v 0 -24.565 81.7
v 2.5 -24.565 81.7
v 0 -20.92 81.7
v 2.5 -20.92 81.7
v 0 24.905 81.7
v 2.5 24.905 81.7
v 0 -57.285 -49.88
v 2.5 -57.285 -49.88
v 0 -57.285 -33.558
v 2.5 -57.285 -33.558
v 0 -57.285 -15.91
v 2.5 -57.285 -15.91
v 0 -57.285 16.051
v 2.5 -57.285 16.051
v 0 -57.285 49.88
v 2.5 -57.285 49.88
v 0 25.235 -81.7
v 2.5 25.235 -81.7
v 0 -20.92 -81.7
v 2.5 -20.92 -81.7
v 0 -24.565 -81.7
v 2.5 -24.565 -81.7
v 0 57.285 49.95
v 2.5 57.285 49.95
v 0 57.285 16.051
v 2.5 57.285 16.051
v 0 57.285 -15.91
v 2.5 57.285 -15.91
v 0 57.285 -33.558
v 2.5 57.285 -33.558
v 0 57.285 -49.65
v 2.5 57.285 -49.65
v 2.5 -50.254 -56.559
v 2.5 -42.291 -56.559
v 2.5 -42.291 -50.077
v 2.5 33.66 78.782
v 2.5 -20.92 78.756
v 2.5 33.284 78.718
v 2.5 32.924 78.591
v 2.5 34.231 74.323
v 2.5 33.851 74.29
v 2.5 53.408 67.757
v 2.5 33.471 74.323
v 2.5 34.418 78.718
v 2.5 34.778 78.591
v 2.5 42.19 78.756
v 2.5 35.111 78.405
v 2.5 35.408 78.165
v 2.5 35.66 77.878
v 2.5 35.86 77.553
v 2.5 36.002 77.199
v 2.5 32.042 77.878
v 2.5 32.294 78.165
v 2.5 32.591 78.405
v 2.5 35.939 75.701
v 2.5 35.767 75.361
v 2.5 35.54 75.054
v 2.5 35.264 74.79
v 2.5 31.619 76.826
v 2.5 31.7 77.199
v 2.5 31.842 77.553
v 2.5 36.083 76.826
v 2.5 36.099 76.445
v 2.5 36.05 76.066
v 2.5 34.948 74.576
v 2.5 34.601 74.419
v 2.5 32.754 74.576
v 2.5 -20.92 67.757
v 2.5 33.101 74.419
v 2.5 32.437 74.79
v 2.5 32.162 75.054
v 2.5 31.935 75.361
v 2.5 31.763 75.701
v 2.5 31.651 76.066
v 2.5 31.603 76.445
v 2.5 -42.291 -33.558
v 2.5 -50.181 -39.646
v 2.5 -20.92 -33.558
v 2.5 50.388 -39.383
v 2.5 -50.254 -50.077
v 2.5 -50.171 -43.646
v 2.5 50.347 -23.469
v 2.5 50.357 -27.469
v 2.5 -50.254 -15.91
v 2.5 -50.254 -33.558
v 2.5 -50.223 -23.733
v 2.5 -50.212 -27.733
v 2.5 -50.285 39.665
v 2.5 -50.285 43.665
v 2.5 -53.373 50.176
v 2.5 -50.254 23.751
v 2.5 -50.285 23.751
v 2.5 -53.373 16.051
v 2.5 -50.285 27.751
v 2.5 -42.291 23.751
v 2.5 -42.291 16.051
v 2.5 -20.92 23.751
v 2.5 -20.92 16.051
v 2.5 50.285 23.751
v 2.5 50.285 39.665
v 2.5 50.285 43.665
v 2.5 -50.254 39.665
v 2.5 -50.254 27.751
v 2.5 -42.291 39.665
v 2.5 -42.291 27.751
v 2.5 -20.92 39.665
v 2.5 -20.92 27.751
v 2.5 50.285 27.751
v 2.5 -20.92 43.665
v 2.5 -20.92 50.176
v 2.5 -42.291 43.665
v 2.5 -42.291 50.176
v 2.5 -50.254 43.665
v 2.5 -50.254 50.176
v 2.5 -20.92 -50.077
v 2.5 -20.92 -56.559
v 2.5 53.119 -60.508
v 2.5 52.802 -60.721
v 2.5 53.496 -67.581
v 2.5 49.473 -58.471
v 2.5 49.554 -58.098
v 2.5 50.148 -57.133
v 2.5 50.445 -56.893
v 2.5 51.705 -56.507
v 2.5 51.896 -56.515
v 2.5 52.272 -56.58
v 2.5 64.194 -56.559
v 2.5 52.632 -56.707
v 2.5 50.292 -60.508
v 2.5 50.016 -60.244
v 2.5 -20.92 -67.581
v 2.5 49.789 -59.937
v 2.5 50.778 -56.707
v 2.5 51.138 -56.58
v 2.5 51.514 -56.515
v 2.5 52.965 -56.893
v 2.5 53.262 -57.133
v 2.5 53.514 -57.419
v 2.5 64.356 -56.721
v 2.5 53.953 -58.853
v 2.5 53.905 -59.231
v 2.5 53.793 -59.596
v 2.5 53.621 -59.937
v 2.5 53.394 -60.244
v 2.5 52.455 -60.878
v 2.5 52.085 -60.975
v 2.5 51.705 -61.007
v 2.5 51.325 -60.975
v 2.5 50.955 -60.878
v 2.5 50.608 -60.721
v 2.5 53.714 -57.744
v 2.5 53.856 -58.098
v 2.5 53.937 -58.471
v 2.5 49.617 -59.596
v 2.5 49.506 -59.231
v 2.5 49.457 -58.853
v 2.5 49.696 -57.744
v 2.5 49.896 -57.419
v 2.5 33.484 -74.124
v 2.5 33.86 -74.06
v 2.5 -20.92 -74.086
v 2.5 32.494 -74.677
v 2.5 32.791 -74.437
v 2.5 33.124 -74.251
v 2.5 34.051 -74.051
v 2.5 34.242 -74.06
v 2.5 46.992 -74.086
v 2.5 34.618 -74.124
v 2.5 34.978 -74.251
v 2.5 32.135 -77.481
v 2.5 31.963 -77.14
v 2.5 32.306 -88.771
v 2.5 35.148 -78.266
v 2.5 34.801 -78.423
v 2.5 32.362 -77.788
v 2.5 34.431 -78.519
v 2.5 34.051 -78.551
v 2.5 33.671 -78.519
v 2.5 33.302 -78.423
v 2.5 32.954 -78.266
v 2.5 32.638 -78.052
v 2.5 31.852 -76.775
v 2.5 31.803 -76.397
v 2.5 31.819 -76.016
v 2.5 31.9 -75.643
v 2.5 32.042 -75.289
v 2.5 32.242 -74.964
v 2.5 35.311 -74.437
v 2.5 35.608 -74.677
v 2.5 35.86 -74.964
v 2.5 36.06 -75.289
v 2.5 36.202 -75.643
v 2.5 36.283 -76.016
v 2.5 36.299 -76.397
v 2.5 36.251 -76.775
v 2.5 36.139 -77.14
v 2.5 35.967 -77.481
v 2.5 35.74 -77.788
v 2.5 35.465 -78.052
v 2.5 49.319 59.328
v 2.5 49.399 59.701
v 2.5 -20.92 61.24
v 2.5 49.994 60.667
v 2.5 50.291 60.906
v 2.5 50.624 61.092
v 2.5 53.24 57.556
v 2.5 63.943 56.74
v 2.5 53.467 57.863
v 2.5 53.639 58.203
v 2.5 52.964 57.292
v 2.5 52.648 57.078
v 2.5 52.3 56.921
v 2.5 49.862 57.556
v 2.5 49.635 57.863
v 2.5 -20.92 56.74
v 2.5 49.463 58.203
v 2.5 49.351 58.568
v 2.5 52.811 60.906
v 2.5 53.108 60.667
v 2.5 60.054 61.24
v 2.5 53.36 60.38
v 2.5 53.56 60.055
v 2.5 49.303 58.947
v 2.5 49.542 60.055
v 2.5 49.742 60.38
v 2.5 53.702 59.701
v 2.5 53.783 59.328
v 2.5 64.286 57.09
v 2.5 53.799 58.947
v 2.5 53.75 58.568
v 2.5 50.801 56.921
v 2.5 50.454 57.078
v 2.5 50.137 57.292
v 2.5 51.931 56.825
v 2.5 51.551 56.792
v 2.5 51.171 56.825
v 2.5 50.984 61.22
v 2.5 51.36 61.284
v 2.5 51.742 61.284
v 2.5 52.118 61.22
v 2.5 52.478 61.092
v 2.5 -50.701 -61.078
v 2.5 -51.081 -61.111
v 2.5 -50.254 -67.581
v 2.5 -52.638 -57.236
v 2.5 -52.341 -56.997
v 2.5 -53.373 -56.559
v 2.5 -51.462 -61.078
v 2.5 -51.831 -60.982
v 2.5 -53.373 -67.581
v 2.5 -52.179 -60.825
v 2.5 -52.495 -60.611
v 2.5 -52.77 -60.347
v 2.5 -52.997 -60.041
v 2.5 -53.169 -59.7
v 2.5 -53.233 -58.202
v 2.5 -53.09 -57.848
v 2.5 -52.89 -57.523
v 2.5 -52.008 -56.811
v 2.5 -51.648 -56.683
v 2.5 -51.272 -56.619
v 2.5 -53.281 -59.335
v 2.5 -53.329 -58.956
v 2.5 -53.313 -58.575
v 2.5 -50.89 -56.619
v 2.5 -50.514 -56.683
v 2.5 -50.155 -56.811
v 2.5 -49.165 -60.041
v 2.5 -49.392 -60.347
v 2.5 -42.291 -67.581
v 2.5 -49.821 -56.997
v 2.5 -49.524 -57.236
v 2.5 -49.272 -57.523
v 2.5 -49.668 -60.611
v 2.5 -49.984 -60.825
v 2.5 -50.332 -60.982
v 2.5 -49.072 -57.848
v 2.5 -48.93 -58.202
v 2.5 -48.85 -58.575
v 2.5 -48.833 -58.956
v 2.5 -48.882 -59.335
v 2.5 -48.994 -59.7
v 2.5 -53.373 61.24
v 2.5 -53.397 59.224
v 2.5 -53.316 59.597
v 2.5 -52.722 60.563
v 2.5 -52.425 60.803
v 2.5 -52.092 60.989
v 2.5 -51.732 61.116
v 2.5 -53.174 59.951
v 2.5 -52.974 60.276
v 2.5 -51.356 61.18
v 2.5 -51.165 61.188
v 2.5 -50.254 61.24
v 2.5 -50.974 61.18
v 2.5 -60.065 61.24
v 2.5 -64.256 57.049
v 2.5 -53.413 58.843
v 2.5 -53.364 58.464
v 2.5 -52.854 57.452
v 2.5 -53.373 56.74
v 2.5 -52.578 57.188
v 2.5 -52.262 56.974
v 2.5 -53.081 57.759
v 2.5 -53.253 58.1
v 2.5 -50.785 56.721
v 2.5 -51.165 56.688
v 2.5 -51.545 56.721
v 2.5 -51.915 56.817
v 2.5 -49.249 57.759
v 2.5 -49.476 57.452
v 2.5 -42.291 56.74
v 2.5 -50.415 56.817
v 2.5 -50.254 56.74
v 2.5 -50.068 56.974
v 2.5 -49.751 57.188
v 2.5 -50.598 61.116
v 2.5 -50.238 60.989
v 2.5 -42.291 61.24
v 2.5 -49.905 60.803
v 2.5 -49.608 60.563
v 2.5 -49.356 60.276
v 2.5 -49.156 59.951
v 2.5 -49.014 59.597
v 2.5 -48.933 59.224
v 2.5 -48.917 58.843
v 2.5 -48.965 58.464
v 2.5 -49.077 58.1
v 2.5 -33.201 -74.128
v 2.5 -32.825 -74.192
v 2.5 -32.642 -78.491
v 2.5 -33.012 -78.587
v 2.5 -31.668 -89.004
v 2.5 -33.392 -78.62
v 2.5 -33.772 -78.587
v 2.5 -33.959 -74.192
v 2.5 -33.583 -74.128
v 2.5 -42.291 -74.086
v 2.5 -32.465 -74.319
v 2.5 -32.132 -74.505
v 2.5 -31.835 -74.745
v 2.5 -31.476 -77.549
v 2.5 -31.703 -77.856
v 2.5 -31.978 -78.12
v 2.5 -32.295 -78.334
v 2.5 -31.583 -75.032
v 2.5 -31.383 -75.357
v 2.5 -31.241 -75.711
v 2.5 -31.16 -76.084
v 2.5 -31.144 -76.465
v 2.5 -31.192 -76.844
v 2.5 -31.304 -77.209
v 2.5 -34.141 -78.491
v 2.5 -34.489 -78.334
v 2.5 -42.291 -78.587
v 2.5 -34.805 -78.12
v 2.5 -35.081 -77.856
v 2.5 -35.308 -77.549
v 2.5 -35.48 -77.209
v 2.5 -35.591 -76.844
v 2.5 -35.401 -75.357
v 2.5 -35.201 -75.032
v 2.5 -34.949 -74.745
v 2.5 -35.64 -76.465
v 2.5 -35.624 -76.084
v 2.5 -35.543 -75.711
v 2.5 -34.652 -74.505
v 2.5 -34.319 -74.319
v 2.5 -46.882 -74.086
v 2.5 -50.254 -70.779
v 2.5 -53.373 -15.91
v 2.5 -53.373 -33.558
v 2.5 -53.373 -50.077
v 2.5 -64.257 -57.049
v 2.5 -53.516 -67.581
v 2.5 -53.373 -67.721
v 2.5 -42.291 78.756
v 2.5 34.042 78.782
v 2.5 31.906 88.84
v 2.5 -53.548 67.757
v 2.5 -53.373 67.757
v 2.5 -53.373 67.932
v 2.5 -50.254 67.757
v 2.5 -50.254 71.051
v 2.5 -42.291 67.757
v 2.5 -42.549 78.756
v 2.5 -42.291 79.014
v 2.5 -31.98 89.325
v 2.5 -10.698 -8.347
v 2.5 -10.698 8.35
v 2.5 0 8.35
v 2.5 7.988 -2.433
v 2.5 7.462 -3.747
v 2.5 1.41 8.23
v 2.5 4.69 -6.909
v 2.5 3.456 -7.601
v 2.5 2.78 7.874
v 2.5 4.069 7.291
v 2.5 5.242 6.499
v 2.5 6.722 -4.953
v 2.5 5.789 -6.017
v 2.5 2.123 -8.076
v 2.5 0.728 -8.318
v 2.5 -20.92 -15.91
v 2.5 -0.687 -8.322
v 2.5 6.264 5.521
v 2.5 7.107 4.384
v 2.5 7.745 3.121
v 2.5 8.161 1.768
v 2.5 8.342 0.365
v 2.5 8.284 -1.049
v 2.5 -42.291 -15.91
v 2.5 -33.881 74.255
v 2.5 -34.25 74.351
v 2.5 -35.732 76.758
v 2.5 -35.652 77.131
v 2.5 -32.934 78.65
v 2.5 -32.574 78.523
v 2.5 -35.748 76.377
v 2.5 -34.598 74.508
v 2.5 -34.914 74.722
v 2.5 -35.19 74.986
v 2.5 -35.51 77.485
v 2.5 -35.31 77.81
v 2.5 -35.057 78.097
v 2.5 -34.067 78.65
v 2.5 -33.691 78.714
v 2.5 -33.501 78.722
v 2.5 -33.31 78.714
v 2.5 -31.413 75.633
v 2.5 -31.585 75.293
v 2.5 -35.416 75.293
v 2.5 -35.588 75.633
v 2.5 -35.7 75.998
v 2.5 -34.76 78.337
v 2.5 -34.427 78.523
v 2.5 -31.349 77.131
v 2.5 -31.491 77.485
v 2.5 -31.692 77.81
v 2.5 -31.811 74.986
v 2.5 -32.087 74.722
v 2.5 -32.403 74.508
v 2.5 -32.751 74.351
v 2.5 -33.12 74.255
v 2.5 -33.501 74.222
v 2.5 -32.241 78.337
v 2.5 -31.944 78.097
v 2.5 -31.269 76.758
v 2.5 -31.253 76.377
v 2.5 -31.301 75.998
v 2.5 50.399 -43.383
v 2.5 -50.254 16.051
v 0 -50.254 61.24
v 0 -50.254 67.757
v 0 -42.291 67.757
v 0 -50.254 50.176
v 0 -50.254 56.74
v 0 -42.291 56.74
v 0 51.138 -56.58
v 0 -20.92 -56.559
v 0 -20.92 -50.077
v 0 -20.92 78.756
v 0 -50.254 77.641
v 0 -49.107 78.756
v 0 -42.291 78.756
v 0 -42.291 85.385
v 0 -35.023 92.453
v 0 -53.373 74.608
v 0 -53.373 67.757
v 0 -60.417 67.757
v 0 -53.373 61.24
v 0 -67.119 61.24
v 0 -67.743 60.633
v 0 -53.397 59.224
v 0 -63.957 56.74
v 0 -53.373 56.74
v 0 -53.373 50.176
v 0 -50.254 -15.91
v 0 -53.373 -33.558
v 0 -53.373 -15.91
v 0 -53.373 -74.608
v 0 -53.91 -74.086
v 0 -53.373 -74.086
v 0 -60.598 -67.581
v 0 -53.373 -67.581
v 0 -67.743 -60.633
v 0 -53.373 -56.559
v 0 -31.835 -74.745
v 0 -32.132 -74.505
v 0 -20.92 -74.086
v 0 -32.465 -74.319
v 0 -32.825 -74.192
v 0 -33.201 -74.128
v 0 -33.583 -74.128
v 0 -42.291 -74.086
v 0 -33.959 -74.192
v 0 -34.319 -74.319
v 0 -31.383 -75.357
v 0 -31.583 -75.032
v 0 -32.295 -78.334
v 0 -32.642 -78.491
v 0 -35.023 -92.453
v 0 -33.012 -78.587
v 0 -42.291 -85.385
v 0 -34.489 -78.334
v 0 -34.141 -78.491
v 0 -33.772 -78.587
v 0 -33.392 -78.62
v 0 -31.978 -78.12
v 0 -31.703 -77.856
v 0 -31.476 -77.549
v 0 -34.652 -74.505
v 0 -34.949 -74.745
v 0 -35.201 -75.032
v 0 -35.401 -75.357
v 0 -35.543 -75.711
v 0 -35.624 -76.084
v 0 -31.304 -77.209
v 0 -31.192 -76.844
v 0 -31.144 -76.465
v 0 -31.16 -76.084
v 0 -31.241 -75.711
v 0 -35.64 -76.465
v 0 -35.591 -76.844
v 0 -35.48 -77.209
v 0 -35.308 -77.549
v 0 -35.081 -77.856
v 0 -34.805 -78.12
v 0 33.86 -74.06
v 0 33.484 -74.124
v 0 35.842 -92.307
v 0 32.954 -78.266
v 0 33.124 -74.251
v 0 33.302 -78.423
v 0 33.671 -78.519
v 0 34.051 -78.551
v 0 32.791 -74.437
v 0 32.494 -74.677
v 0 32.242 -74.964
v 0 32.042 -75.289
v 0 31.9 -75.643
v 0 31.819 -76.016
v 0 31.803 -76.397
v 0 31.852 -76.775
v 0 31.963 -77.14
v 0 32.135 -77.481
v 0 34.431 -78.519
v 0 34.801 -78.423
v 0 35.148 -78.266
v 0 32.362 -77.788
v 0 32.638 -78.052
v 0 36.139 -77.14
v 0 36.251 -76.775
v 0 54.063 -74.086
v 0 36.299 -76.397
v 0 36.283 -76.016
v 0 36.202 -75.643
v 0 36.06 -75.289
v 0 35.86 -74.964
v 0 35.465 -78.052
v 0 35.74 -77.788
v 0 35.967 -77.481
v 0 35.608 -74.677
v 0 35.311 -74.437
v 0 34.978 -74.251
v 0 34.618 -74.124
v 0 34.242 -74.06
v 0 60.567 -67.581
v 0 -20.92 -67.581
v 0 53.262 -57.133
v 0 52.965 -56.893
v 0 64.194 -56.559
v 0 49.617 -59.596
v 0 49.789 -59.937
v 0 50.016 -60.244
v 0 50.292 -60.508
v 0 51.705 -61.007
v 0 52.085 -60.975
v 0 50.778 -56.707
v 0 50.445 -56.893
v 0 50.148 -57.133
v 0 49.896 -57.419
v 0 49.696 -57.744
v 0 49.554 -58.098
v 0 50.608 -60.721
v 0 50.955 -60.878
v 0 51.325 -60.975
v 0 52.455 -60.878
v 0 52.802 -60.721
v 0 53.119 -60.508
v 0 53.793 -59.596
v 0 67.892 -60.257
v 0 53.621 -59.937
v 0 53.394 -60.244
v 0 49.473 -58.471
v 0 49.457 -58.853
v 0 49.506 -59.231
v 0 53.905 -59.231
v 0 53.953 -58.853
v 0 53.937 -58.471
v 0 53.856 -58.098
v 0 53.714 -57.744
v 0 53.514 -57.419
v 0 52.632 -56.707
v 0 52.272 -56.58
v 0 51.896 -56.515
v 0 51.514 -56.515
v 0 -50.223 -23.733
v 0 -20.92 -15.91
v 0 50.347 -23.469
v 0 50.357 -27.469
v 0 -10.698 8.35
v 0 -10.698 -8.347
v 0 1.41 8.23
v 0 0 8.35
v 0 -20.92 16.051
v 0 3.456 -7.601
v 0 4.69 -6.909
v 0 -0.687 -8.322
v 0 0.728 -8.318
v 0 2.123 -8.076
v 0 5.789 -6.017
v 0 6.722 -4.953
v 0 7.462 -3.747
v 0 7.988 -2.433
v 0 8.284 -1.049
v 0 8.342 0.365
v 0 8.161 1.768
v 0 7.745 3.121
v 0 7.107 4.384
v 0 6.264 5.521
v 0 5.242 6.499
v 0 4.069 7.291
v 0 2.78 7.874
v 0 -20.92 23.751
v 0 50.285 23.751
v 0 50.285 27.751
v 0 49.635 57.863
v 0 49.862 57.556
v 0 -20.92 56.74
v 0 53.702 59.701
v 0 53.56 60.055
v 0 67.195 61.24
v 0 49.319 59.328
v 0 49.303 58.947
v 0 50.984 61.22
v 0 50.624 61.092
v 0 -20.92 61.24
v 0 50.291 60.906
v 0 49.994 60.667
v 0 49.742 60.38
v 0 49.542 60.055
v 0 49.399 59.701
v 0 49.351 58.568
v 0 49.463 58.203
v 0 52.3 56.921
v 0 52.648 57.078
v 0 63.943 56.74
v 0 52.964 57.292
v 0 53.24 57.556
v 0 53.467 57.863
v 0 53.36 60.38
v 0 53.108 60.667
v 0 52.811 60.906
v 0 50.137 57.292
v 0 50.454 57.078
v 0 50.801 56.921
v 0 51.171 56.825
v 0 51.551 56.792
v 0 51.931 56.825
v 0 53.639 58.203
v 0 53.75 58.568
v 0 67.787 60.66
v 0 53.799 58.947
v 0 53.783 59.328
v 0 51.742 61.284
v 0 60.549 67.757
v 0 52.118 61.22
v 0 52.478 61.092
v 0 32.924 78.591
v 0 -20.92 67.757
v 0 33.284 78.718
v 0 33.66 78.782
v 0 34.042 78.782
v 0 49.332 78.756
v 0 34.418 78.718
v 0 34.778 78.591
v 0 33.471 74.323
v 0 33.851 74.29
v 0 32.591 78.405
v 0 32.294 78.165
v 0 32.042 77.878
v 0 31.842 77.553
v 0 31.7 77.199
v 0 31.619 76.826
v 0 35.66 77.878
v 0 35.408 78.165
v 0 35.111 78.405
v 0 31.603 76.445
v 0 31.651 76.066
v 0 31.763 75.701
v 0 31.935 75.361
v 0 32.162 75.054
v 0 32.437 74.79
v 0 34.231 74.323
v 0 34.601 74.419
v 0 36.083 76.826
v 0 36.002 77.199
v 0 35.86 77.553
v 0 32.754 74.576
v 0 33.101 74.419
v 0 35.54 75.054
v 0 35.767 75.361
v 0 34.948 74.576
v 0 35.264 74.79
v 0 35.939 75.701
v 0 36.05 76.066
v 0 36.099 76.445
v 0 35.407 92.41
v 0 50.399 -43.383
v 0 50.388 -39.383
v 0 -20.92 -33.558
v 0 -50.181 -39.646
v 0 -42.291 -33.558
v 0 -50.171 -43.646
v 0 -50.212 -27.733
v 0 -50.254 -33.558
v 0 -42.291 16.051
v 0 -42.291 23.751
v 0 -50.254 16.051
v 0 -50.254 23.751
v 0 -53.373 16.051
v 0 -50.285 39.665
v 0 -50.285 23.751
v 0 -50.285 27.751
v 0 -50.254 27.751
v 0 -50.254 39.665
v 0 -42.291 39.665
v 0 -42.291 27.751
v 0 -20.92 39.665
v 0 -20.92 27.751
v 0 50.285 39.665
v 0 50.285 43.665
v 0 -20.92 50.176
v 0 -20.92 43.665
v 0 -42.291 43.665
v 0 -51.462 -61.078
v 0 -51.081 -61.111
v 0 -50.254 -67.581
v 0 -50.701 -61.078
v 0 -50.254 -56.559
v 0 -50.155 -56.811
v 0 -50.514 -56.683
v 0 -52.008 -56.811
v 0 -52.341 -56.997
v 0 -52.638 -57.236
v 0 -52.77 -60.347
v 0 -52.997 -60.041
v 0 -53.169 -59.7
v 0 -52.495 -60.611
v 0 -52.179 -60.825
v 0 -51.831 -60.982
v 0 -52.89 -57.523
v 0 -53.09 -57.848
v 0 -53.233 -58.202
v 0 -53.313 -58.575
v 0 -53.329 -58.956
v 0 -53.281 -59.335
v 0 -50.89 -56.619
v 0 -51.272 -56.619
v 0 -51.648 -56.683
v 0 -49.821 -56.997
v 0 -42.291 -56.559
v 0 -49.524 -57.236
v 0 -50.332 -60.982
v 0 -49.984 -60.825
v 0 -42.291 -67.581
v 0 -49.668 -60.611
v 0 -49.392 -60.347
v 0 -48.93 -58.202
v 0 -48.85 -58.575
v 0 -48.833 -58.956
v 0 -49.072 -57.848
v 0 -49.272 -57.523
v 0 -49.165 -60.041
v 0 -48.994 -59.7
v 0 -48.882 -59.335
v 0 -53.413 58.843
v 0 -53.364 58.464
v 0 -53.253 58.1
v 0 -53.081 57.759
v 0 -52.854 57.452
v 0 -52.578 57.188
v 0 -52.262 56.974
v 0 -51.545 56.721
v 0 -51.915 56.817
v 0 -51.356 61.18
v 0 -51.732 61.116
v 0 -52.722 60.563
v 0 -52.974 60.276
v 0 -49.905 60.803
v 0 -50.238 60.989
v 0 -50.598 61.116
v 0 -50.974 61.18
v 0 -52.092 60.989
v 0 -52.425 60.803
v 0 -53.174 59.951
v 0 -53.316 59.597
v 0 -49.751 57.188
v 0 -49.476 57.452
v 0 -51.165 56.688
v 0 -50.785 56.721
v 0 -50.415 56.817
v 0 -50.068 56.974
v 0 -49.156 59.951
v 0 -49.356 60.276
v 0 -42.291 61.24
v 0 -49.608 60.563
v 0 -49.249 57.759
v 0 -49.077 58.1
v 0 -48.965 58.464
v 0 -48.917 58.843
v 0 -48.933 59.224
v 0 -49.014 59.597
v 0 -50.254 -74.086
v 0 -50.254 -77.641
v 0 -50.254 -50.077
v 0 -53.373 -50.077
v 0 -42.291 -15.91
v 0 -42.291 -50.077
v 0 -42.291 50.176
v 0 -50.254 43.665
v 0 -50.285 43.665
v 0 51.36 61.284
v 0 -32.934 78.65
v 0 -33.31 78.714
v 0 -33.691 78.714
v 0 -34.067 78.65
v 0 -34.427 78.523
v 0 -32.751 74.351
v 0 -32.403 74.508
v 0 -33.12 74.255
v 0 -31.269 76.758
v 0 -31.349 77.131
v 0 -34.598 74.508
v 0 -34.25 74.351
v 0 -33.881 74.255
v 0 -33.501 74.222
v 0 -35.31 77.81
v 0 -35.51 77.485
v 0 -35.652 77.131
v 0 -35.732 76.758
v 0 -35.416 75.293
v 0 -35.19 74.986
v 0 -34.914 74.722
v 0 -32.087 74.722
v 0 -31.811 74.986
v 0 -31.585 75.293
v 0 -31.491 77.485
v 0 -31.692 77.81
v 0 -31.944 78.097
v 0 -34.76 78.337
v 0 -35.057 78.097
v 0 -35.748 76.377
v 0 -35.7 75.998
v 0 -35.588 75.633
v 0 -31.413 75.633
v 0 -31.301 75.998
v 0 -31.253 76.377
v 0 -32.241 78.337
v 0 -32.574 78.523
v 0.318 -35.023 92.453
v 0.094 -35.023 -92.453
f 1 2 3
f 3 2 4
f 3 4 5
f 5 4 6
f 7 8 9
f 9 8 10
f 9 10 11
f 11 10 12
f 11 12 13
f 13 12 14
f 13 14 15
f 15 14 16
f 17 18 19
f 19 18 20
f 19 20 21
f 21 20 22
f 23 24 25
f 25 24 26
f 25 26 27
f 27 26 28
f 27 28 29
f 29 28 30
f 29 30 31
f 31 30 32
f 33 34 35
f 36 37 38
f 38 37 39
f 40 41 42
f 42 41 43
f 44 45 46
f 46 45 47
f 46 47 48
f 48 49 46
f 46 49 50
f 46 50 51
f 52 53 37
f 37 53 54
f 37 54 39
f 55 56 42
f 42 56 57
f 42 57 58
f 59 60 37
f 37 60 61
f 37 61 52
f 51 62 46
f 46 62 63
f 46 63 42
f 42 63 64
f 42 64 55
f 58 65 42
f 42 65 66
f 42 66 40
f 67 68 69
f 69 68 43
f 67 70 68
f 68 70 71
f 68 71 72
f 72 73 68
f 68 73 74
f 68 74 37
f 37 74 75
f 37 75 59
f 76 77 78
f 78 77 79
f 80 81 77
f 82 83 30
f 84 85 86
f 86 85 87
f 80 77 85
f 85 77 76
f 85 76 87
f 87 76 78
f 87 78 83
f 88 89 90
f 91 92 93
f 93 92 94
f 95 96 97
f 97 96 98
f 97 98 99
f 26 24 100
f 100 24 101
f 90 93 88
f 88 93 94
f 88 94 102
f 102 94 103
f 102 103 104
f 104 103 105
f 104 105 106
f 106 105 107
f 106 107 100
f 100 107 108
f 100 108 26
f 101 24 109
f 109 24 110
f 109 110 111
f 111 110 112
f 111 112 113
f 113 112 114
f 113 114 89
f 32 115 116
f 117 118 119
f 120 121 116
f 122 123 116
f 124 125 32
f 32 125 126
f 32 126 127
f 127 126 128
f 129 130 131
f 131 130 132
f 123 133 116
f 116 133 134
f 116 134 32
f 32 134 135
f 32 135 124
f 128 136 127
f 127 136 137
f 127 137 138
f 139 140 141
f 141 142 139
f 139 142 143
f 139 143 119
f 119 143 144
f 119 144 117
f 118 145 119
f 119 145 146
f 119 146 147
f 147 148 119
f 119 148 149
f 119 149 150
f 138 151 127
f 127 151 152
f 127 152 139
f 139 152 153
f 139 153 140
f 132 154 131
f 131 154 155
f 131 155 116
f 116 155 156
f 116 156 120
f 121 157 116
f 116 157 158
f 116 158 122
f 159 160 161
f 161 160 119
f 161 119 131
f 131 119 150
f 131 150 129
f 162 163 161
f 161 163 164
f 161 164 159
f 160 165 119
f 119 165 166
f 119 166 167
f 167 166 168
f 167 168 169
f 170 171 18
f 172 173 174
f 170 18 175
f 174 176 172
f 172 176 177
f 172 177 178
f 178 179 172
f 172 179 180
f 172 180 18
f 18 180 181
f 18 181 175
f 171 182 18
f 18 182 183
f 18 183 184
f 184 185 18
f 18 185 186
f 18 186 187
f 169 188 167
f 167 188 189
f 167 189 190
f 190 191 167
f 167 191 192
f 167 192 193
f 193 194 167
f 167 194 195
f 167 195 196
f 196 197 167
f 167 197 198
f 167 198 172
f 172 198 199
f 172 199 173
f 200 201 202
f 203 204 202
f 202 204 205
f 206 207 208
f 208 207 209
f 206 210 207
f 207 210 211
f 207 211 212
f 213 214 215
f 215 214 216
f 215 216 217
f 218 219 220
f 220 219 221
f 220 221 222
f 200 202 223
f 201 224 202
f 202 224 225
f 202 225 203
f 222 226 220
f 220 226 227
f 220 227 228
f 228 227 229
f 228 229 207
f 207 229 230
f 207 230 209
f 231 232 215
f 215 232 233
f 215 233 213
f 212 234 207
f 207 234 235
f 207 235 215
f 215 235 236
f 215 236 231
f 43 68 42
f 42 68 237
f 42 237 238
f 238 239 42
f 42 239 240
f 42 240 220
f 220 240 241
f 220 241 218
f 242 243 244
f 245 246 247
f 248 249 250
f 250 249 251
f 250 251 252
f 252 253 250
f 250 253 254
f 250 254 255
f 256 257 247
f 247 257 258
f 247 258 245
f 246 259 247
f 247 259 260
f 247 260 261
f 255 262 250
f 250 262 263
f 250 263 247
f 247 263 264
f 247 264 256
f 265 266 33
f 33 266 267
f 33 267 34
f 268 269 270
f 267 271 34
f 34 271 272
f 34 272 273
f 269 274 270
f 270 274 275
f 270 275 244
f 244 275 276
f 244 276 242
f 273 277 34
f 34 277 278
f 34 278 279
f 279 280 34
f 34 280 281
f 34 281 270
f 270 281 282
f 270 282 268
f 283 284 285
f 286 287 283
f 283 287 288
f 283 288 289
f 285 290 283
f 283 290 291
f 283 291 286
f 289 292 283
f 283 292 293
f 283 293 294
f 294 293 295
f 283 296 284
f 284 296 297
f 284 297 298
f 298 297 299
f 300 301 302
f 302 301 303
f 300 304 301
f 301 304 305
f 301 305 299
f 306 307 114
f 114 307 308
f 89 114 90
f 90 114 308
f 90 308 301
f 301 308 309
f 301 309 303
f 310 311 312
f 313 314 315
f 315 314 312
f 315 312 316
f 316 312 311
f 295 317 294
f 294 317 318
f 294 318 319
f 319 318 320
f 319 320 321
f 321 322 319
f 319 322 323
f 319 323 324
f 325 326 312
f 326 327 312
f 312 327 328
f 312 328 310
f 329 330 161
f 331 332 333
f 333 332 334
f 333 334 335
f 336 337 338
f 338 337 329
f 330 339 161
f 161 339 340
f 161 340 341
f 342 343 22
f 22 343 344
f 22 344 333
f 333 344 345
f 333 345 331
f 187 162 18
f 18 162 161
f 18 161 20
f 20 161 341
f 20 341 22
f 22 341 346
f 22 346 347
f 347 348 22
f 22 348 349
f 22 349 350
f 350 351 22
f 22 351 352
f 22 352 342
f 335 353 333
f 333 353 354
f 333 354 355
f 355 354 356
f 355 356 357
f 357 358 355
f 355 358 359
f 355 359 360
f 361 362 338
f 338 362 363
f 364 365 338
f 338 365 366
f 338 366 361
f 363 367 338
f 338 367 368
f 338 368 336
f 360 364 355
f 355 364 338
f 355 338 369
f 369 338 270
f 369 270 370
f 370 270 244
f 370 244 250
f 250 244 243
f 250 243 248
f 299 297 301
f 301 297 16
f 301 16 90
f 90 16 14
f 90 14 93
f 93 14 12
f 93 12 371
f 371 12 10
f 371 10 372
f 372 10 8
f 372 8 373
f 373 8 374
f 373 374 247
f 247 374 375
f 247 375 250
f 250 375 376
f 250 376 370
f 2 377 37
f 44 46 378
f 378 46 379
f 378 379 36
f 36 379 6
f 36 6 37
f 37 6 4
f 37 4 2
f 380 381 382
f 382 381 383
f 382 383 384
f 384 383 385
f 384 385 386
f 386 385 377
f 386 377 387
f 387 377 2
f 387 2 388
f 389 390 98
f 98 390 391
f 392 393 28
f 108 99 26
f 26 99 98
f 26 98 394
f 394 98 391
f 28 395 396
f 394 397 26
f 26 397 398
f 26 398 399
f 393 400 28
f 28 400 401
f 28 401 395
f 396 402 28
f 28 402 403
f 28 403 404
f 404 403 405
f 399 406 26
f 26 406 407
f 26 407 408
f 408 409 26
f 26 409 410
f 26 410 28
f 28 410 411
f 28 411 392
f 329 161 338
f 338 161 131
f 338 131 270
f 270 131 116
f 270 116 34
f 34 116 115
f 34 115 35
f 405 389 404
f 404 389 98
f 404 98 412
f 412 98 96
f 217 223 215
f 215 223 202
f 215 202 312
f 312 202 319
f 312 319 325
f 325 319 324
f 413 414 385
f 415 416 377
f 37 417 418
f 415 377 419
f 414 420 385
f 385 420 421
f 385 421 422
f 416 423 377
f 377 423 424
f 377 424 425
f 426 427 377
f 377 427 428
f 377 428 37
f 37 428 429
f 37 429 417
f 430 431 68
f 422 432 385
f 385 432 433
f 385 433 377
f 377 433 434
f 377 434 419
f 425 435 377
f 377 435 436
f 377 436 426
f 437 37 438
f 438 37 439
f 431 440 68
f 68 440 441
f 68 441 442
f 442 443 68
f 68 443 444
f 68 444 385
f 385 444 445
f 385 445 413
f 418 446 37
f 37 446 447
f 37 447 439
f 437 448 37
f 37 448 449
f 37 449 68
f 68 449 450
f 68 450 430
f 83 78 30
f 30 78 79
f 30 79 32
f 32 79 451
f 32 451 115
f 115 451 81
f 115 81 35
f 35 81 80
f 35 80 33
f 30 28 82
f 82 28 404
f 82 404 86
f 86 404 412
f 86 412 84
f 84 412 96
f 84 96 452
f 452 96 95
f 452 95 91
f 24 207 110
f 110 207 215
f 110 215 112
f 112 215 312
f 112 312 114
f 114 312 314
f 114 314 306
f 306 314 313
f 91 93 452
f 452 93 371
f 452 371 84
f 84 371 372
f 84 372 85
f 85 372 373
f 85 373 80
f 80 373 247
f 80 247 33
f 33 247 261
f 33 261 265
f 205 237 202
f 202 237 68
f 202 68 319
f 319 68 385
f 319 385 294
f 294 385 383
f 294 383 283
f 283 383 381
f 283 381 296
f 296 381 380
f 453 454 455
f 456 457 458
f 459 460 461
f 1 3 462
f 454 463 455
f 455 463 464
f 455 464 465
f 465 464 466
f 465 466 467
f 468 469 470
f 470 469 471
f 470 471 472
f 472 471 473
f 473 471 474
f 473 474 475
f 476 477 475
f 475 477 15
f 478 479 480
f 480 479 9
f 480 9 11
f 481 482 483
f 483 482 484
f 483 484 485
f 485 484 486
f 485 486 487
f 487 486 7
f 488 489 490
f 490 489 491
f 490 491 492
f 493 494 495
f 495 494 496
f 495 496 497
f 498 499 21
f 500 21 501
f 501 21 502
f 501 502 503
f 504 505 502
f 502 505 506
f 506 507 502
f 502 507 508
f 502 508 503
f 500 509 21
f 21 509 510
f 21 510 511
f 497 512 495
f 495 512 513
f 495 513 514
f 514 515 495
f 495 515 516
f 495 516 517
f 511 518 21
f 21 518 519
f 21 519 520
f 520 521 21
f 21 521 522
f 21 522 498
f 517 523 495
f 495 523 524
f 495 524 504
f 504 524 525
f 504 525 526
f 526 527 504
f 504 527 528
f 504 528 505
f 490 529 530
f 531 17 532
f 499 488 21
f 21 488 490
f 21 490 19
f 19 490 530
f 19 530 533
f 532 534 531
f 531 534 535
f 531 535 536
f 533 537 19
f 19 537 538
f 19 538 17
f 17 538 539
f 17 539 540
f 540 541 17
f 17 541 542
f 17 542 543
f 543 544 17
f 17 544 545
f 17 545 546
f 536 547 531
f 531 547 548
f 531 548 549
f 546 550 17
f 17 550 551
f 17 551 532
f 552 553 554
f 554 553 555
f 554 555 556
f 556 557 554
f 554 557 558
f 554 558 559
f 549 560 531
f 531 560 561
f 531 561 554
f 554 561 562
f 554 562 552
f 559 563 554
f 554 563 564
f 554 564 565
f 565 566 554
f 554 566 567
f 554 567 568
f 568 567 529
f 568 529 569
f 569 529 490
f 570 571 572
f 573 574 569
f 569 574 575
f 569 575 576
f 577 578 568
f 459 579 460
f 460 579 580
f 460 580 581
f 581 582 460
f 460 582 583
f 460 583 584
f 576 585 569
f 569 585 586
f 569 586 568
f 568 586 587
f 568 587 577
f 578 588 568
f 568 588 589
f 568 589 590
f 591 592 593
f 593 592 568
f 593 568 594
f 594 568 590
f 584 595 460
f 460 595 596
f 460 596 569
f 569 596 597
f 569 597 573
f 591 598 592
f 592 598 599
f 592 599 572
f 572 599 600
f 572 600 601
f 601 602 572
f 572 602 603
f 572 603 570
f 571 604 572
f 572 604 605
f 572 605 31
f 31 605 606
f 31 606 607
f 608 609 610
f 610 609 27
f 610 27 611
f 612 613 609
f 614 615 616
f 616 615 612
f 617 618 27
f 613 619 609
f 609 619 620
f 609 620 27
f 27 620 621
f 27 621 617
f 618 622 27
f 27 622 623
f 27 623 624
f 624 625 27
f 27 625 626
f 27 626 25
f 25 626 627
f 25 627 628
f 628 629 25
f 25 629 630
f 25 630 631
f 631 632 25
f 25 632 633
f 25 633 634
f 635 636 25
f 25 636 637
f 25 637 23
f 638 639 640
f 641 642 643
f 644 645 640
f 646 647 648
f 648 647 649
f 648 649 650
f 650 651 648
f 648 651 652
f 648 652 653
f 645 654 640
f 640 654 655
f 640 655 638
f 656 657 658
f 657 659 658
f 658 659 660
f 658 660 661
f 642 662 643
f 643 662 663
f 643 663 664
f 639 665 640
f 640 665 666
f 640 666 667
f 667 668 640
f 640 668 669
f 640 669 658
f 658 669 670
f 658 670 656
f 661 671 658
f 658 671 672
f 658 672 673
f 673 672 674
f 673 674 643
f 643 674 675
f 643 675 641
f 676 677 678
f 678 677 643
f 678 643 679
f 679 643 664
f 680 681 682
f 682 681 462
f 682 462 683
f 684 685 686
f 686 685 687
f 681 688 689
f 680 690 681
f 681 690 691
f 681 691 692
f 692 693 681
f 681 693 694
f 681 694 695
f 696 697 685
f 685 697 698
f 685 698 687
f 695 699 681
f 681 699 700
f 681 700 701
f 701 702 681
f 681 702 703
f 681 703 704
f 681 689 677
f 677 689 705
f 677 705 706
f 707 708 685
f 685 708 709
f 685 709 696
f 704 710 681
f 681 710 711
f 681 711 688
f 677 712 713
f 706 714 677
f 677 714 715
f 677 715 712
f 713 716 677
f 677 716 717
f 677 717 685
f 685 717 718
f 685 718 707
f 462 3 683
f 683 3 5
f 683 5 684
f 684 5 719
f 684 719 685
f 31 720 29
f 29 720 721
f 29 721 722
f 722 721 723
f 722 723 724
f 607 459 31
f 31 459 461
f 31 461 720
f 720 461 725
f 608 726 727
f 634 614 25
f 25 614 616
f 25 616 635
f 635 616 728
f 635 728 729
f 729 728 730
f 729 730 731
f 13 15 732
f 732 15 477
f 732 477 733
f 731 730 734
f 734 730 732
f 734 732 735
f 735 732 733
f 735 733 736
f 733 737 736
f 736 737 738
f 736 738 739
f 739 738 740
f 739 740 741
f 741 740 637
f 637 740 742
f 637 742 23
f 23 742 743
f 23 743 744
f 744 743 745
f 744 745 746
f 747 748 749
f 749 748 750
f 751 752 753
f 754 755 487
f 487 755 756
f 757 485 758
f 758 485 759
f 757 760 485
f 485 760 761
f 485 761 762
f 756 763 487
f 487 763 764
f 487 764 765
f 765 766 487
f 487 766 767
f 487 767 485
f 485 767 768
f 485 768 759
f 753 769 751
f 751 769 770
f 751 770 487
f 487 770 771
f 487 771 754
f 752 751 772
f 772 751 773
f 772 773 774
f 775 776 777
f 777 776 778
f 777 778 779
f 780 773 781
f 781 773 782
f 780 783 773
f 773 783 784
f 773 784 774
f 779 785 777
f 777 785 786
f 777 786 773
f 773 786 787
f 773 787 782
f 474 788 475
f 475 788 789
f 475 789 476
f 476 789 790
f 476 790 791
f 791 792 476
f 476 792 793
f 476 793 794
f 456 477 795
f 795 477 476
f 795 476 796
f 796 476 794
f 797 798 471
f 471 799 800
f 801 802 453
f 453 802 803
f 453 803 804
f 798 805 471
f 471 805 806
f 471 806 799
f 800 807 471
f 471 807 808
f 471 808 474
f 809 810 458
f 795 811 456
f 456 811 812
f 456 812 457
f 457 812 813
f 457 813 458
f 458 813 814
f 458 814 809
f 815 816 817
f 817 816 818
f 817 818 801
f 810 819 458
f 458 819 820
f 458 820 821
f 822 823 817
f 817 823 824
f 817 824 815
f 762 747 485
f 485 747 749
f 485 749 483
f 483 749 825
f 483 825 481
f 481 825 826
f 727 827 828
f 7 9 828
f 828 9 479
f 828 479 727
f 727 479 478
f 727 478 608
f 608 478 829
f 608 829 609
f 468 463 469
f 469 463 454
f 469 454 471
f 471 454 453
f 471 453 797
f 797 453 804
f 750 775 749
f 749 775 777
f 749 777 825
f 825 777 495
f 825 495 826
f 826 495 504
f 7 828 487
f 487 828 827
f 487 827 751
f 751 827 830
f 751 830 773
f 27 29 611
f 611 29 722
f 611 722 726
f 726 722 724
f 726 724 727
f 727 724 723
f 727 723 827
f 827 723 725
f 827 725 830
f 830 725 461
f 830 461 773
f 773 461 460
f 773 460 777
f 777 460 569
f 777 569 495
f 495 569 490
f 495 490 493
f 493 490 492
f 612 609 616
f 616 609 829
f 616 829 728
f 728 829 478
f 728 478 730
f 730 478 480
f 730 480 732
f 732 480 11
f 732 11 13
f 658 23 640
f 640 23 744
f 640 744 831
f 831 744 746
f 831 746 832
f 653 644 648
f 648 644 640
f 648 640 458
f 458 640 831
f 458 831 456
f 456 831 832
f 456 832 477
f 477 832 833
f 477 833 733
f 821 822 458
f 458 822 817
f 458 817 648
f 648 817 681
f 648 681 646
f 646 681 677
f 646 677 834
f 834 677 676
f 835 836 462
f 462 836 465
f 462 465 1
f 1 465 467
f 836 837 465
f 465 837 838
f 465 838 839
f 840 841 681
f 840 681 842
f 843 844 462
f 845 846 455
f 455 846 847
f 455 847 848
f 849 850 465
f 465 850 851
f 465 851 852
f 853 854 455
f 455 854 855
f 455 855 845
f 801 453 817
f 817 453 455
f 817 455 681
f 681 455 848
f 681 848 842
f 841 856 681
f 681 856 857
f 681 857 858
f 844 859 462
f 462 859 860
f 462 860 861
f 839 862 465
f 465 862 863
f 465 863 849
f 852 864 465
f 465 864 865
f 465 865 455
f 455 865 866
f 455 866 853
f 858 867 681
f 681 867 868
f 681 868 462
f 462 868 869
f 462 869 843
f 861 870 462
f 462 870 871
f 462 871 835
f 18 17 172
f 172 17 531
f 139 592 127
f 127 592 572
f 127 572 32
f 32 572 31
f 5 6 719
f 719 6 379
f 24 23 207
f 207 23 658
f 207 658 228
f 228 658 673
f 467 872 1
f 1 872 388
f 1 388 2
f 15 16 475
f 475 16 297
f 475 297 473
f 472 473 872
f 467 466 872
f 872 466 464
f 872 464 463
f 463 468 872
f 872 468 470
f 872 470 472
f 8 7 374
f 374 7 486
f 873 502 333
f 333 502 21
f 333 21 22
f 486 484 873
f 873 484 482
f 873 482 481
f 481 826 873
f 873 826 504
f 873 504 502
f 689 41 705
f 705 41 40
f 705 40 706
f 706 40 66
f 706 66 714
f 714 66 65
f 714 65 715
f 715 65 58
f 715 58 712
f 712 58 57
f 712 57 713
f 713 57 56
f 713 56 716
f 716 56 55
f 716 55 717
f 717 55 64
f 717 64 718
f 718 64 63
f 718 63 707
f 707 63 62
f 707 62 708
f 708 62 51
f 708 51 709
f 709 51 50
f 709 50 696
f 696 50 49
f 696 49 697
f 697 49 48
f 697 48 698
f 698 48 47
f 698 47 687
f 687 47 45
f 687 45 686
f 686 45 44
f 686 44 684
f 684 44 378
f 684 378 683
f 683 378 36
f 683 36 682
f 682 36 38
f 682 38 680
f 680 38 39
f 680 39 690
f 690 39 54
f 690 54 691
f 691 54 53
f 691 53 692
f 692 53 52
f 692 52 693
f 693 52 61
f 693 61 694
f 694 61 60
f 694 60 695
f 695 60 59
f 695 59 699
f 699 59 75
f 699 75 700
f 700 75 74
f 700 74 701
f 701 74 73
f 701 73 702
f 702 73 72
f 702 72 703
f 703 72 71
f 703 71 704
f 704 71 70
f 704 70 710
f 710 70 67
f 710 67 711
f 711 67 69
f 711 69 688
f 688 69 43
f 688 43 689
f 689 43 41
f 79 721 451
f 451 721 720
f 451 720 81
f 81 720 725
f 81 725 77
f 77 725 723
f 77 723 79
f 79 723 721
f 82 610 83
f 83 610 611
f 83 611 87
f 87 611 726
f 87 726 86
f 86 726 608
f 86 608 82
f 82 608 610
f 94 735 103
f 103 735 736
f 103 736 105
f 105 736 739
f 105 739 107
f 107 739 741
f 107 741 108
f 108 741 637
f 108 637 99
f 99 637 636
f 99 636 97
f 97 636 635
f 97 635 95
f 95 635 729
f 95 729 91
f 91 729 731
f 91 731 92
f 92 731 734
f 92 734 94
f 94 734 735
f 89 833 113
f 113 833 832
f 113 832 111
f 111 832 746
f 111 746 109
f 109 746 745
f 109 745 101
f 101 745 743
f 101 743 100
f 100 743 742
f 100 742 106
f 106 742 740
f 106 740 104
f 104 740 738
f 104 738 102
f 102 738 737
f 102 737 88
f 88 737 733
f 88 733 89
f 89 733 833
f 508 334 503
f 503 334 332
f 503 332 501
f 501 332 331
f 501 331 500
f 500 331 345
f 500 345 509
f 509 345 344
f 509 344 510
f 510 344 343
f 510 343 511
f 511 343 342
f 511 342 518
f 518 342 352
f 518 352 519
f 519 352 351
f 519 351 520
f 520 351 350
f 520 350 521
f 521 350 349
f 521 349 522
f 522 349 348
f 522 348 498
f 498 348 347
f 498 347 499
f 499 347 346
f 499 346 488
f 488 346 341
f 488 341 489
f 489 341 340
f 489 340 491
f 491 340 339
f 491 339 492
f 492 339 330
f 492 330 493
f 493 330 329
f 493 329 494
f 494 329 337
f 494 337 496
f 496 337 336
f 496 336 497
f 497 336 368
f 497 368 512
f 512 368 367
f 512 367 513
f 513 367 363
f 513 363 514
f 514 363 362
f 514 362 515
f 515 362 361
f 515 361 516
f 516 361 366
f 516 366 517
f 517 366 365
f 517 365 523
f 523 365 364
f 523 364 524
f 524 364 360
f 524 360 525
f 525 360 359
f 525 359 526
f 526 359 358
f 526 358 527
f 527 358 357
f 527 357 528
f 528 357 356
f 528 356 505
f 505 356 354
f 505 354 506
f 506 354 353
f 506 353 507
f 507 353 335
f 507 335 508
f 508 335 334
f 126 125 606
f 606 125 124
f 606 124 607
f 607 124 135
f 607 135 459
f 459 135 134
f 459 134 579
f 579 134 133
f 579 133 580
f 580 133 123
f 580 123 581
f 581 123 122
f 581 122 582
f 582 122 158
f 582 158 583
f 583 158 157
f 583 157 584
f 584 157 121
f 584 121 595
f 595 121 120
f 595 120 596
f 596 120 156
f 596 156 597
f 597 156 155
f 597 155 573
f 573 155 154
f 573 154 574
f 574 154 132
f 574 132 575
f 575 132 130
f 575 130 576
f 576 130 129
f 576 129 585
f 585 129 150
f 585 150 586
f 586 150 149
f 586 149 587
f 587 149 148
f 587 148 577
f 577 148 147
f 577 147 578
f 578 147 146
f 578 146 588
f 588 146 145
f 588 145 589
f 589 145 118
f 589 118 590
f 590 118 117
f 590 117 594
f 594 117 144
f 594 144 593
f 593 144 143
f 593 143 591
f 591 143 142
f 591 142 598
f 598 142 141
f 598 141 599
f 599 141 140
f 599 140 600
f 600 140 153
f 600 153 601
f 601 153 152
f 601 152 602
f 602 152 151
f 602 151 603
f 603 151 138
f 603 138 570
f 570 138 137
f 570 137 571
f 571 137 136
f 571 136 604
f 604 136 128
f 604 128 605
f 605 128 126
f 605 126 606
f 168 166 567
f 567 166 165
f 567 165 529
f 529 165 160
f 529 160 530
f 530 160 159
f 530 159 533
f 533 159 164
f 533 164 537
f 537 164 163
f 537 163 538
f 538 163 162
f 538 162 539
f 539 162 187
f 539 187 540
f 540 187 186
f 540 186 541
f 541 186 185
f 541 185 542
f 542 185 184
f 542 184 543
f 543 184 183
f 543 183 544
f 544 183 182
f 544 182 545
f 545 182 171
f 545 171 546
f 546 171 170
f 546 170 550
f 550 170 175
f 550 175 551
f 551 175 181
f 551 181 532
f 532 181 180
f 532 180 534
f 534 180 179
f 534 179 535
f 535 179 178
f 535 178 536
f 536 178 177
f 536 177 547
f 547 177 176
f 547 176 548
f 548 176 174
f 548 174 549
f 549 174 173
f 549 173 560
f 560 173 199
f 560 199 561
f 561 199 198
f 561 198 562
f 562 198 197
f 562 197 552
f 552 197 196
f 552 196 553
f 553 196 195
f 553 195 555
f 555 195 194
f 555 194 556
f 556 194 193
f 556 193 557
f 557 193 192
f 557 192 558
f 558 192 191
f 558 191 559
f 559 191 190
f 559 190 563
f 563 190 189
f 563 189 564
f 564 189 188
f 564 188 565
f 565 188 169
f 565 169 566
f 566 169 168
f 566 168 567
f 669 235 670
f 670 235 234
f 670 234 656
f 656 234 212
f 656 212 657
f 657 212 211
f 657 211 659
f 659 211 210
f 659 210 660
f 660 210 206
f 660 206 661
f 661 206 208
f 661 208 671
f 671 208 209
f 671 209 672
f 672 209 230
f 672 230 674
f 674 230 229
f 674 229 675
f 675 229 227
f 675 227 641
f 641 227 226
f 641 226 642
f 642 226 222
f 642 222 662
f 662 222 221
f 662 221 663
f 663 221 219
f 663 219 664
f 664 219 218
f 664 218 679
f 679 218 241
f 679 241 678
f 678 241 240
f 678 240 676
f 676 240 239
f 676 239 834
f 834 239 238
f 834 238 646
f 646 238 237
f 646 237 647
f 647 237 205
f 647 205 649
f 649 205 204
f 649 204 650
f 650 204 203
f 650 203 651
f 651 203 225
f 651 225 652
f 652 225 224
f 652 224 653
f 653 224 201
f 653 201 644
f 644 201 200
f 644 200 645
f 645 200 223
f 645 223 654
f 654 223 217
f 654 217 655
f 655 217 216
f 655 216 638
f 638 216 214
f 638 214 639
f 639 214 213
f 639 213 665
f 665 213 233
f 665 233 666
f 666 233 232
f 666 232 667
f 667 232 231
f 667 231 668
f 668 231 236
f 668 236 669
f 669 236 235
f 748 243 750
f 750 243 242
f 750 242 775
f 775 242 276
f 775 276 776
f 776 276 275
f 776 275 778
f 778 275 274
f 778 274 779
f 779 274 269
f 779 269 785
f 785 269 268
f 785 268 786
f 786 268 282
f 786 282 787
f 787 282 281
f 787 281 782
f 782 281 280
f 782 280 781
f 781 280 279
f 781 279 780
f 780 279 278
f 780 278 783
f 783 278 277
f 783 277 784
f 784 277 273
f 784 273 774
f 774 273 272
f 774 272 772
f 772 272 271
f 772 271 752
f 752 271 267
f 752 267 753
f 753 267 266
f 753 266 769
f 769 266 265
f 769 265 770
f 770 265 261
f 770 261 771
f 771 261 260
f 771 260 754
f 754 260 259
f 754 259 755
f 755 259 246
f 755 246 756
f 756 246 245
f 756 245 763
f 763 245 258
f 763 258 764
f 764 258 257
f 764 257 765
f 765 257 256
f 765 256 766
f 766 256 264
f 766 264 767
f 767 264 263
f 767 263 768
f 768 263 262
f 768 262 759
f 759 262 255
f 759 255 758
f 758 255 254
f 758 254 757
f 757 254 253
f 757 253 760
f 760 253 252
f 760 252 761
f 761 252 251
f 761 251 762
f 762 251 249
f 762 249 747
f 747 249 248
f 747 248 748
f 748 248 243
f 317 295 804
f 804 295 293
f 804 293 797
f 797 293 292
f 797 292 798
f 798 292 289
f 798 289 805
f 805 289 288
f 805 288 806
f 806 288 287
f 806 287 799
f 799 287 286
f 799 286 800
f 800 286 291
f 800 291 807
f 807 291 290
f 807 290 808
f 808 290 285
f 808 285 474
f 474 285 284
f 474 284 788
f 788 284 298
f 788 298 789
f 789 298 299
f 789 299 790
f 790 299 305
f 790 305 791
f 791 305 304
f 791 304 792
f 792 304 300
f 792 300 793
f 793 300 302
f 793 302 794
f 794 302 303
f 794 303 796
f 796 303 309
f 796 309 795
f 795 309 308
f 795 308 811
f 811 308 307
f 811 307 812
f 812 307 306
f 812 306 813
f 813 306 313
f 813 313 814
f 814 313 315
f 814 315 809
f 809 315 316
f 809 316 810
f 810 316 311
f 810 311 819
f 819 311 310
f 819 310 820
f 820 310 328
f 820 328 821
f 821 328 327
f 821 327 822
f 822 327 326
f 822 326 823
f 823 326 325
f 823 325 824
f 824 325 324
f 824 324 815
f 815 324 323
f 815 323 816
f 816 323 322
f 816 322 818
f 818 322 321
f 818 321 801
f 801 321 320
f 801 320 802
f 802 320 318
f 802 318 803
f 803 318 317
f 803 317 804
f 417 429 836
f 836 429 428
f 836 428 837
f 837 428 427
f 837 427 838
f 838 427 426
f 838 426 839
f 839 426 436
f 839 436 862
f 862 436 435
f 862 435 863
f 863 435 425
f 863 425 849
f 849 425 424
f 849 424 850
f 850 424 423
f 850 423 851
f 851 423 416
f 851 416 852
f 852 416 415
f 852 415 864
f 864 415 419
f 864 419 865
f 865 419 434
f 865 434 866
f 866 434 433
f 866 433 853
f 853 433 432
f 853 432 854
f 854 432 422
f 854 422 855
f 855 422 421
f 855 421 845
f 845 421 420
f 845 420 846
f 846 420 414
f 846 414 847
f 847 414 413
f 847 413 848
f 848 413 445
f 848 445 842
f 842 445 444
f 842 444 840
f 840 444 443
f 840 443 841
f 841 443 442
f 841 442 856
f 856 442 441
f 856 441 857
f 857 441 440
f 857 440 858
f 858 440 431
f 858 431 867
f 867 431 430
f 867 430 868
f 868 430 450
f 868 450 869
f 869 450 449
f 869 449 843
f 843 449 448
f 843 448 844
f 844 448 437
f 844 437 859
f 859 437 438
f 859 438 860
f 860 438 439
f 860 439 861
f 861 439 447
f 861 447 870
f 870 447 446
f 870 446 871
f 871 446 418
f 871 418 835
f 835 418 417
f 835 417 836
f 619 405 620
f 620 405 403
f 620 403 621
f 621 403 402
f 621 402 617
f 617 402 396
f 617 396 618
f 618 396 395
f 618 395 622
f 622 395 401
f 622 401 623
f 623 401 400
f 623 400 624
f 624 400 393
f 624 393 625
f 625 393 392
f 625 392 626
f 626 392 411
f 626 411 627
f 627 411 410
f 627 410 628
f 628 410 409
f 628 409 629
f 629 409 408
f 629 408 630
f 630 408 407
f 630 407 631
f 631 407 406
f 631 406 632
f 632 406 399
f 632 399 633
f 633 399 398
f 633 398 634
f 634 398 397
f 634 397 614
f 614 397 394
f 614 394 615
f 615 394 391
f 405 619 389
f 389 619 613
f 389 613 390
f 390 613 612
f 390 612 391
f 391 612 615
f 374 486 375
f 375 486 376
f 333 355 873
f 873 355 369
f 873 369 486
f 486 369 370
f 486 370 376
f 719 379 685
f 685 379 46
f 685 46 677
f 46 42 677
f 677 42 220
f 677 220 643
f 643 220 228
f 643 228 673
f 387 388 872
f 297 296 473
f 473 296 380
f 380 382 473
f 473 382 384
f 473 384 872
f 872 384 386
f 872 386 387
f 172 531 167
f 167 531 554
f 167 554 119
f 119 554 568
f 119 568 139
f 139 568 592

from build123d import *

# Parameters (mm, degrees)
SALIENTE_EXTRUIR1_DEPTH = 2.5
SALIENTE_EXTRUIR2_DEPTH = 2.5
CROQUIS3_R              = 2.25
CROQUIS3_W              = 4
CROQUIS3_H              = 100.57
CORTAR_EXTRUIR1_DEPTH   = 10
CORTAR_EXTRUIR3_DEPTH   = 82
CORTAR_EXTRUIR4_DEPTH   = 90


with BuildPart() as part:
    # Croquis1 → Saliente-Extruir1 (new body)
    with BuildSketch(Plane(origin=(0, 0, 0), x_dir=(0, 0, -1), z_dir=(1, 0, 0))):
        Polygon((-49.88, -57.285), (49.88, -57.285), (81.7, -24.565), (81.7, 25.235), (49.65, 57.285), (-49.95, 57.285), (-81.7, 24.905), (-81.7, -24.565), align=None)
    extrude(amount=SALIENTE_EXTRUIR1_DEPTH)

    # Croquis2 → Saliente-Extruir2 (add)
    with BuildSketch(Plane(origin=(2.5, 0, 0), x_dir=(0, 0, -1), z_dir=(1, 0, 0))):
        Polygon((81.7, 25.235), (49.65, 57.285), (60.256601718, 67.891601718), (92.306601718, 35.841601718), align=None)
        Polygon((-81.7, 24.905), (-49.95, 57.285), (-60.660282007, 67.786897892), (-92.410282007, 35.406897892), align=None)
        Polygon((-81.7, -24.565), (-49.88, -57.285), (-60.633463585, -67.742677606), (-92.453463585, -35.022677606), align=None)
        Polygon((49.88, -57.285), (81.7, -24.565), (92.453463585, -35.022677606), (60.633463585, -67.742677606), align=None)
    extrude(amount=-SALIENTE_EXTRUIR2_DEPTH)

    # Croquis3 → Cortar-Extruir1 (cut)
    with BuildSketch(Plane(origin=(2.5, 0, 0), x_dir=(0, 0, -1), z_dir=(1, 0, 0))):
        with Locations((-76.540373615, 33.850995118)):
            Circle(CROQUIS3_R)
        with Locations((-59.042204467, 51.550828198)):
            Circle(CROQUIS3_R)
        with Locations((76.301473252, 34.051102275)):
            Circle(CROQUIS3_R)
        with Locations((58.757017396, 51.705056035)):
            Circle(CROQUIS3_R)
        with Locations((76.369576687, -33.391936282)):
            Circle(CROQUIS3_R)
        with Locations((58.860810215, -51.081286502)):
            Circle(CROQUIS3_R)
        with Locations((-58.938482889, -51.164964143)):
            Circle(CROQUIS3_R)
        with Locations((-76.472362613, -33.500506143)):
            Circle(CROQUIS3_R)
        with BuildLine():
            Line((-8.35, 0), (-8.35, -10.698407243))
            Line((-8.35, -10.698407243), (8.347094832, -10.698407243))
            Line((8.347094832, -10.698407243), (8.321717757, -0.686668462))
            ThreePointArc((8.321717757, -0.686668462), (0.343625327, 8.342926443), (-8.35, 0))
        make_face()
        Polygon((23.469483411, 50.346823407), (23.732824148, -50.222831816), (27.732810435, -50.212357888), (27.469469698, 50.357297335), align=None)
        with Locations((-41.664502762, 0)):
            Rectangle(CROQUIS3_W, CROQUIS3_H)
        with Locations((-25.751234947, 0)):
            Rectangle(CROQUIS3_W, CROQUIS3_H)
        Polygon((39.382696671, 50.388492013), (39.646037409, -50.18116321), (43.646023696, -50.170689282), (43.382682959, 50.398965941), align=None)
    extrude(amount=-CORTAR_EXTRUIR1_DEPTH, mode=Mode.SUBTRACT)

    # Croquis4 → Cortar-Extruir3 (cut)
    with BuildSketch(Plane(origin=(0, -28.144978127, 27.597376638), x_dir=(1, 0, 0), z_dir=(0, -0.7140188004824893, 0.7001265261062083))):
        Polygon((0, 90.771987132), (2.5, 90.771987132), (2.5, 85.771987132), align=None)
        Polygon((2.5, -90.72187848), (0, -90.72187848), (2.5, -85.72187848), align=None)
    extrude(amount=-CORTAR_EXTRUIR3_DEPTH, mode=Mode.SUBTRACT)

    # Croquis6 → Cortar-Extruir4 (cut)
    with BuildSketch(Plane(origin=(0, -28.2325, -28.2325), x_dir=(1, 0, 0), z_dir=(0, -0.7071067811865475, -0.7071067811865477))):
        Polygon((0, -90.614463646), (2.5, -85.614463646), (2.5, -90.614463646), align=None)
        Polygon((0, 90.775639979), (2.5, 90.775639979), (2.5, 85.775639979), align=None)
    extrude(amount=-CORTAR_EXTRUIR4_DEPTH, mode=Mode.SUBTRACT)


solid = part.part
